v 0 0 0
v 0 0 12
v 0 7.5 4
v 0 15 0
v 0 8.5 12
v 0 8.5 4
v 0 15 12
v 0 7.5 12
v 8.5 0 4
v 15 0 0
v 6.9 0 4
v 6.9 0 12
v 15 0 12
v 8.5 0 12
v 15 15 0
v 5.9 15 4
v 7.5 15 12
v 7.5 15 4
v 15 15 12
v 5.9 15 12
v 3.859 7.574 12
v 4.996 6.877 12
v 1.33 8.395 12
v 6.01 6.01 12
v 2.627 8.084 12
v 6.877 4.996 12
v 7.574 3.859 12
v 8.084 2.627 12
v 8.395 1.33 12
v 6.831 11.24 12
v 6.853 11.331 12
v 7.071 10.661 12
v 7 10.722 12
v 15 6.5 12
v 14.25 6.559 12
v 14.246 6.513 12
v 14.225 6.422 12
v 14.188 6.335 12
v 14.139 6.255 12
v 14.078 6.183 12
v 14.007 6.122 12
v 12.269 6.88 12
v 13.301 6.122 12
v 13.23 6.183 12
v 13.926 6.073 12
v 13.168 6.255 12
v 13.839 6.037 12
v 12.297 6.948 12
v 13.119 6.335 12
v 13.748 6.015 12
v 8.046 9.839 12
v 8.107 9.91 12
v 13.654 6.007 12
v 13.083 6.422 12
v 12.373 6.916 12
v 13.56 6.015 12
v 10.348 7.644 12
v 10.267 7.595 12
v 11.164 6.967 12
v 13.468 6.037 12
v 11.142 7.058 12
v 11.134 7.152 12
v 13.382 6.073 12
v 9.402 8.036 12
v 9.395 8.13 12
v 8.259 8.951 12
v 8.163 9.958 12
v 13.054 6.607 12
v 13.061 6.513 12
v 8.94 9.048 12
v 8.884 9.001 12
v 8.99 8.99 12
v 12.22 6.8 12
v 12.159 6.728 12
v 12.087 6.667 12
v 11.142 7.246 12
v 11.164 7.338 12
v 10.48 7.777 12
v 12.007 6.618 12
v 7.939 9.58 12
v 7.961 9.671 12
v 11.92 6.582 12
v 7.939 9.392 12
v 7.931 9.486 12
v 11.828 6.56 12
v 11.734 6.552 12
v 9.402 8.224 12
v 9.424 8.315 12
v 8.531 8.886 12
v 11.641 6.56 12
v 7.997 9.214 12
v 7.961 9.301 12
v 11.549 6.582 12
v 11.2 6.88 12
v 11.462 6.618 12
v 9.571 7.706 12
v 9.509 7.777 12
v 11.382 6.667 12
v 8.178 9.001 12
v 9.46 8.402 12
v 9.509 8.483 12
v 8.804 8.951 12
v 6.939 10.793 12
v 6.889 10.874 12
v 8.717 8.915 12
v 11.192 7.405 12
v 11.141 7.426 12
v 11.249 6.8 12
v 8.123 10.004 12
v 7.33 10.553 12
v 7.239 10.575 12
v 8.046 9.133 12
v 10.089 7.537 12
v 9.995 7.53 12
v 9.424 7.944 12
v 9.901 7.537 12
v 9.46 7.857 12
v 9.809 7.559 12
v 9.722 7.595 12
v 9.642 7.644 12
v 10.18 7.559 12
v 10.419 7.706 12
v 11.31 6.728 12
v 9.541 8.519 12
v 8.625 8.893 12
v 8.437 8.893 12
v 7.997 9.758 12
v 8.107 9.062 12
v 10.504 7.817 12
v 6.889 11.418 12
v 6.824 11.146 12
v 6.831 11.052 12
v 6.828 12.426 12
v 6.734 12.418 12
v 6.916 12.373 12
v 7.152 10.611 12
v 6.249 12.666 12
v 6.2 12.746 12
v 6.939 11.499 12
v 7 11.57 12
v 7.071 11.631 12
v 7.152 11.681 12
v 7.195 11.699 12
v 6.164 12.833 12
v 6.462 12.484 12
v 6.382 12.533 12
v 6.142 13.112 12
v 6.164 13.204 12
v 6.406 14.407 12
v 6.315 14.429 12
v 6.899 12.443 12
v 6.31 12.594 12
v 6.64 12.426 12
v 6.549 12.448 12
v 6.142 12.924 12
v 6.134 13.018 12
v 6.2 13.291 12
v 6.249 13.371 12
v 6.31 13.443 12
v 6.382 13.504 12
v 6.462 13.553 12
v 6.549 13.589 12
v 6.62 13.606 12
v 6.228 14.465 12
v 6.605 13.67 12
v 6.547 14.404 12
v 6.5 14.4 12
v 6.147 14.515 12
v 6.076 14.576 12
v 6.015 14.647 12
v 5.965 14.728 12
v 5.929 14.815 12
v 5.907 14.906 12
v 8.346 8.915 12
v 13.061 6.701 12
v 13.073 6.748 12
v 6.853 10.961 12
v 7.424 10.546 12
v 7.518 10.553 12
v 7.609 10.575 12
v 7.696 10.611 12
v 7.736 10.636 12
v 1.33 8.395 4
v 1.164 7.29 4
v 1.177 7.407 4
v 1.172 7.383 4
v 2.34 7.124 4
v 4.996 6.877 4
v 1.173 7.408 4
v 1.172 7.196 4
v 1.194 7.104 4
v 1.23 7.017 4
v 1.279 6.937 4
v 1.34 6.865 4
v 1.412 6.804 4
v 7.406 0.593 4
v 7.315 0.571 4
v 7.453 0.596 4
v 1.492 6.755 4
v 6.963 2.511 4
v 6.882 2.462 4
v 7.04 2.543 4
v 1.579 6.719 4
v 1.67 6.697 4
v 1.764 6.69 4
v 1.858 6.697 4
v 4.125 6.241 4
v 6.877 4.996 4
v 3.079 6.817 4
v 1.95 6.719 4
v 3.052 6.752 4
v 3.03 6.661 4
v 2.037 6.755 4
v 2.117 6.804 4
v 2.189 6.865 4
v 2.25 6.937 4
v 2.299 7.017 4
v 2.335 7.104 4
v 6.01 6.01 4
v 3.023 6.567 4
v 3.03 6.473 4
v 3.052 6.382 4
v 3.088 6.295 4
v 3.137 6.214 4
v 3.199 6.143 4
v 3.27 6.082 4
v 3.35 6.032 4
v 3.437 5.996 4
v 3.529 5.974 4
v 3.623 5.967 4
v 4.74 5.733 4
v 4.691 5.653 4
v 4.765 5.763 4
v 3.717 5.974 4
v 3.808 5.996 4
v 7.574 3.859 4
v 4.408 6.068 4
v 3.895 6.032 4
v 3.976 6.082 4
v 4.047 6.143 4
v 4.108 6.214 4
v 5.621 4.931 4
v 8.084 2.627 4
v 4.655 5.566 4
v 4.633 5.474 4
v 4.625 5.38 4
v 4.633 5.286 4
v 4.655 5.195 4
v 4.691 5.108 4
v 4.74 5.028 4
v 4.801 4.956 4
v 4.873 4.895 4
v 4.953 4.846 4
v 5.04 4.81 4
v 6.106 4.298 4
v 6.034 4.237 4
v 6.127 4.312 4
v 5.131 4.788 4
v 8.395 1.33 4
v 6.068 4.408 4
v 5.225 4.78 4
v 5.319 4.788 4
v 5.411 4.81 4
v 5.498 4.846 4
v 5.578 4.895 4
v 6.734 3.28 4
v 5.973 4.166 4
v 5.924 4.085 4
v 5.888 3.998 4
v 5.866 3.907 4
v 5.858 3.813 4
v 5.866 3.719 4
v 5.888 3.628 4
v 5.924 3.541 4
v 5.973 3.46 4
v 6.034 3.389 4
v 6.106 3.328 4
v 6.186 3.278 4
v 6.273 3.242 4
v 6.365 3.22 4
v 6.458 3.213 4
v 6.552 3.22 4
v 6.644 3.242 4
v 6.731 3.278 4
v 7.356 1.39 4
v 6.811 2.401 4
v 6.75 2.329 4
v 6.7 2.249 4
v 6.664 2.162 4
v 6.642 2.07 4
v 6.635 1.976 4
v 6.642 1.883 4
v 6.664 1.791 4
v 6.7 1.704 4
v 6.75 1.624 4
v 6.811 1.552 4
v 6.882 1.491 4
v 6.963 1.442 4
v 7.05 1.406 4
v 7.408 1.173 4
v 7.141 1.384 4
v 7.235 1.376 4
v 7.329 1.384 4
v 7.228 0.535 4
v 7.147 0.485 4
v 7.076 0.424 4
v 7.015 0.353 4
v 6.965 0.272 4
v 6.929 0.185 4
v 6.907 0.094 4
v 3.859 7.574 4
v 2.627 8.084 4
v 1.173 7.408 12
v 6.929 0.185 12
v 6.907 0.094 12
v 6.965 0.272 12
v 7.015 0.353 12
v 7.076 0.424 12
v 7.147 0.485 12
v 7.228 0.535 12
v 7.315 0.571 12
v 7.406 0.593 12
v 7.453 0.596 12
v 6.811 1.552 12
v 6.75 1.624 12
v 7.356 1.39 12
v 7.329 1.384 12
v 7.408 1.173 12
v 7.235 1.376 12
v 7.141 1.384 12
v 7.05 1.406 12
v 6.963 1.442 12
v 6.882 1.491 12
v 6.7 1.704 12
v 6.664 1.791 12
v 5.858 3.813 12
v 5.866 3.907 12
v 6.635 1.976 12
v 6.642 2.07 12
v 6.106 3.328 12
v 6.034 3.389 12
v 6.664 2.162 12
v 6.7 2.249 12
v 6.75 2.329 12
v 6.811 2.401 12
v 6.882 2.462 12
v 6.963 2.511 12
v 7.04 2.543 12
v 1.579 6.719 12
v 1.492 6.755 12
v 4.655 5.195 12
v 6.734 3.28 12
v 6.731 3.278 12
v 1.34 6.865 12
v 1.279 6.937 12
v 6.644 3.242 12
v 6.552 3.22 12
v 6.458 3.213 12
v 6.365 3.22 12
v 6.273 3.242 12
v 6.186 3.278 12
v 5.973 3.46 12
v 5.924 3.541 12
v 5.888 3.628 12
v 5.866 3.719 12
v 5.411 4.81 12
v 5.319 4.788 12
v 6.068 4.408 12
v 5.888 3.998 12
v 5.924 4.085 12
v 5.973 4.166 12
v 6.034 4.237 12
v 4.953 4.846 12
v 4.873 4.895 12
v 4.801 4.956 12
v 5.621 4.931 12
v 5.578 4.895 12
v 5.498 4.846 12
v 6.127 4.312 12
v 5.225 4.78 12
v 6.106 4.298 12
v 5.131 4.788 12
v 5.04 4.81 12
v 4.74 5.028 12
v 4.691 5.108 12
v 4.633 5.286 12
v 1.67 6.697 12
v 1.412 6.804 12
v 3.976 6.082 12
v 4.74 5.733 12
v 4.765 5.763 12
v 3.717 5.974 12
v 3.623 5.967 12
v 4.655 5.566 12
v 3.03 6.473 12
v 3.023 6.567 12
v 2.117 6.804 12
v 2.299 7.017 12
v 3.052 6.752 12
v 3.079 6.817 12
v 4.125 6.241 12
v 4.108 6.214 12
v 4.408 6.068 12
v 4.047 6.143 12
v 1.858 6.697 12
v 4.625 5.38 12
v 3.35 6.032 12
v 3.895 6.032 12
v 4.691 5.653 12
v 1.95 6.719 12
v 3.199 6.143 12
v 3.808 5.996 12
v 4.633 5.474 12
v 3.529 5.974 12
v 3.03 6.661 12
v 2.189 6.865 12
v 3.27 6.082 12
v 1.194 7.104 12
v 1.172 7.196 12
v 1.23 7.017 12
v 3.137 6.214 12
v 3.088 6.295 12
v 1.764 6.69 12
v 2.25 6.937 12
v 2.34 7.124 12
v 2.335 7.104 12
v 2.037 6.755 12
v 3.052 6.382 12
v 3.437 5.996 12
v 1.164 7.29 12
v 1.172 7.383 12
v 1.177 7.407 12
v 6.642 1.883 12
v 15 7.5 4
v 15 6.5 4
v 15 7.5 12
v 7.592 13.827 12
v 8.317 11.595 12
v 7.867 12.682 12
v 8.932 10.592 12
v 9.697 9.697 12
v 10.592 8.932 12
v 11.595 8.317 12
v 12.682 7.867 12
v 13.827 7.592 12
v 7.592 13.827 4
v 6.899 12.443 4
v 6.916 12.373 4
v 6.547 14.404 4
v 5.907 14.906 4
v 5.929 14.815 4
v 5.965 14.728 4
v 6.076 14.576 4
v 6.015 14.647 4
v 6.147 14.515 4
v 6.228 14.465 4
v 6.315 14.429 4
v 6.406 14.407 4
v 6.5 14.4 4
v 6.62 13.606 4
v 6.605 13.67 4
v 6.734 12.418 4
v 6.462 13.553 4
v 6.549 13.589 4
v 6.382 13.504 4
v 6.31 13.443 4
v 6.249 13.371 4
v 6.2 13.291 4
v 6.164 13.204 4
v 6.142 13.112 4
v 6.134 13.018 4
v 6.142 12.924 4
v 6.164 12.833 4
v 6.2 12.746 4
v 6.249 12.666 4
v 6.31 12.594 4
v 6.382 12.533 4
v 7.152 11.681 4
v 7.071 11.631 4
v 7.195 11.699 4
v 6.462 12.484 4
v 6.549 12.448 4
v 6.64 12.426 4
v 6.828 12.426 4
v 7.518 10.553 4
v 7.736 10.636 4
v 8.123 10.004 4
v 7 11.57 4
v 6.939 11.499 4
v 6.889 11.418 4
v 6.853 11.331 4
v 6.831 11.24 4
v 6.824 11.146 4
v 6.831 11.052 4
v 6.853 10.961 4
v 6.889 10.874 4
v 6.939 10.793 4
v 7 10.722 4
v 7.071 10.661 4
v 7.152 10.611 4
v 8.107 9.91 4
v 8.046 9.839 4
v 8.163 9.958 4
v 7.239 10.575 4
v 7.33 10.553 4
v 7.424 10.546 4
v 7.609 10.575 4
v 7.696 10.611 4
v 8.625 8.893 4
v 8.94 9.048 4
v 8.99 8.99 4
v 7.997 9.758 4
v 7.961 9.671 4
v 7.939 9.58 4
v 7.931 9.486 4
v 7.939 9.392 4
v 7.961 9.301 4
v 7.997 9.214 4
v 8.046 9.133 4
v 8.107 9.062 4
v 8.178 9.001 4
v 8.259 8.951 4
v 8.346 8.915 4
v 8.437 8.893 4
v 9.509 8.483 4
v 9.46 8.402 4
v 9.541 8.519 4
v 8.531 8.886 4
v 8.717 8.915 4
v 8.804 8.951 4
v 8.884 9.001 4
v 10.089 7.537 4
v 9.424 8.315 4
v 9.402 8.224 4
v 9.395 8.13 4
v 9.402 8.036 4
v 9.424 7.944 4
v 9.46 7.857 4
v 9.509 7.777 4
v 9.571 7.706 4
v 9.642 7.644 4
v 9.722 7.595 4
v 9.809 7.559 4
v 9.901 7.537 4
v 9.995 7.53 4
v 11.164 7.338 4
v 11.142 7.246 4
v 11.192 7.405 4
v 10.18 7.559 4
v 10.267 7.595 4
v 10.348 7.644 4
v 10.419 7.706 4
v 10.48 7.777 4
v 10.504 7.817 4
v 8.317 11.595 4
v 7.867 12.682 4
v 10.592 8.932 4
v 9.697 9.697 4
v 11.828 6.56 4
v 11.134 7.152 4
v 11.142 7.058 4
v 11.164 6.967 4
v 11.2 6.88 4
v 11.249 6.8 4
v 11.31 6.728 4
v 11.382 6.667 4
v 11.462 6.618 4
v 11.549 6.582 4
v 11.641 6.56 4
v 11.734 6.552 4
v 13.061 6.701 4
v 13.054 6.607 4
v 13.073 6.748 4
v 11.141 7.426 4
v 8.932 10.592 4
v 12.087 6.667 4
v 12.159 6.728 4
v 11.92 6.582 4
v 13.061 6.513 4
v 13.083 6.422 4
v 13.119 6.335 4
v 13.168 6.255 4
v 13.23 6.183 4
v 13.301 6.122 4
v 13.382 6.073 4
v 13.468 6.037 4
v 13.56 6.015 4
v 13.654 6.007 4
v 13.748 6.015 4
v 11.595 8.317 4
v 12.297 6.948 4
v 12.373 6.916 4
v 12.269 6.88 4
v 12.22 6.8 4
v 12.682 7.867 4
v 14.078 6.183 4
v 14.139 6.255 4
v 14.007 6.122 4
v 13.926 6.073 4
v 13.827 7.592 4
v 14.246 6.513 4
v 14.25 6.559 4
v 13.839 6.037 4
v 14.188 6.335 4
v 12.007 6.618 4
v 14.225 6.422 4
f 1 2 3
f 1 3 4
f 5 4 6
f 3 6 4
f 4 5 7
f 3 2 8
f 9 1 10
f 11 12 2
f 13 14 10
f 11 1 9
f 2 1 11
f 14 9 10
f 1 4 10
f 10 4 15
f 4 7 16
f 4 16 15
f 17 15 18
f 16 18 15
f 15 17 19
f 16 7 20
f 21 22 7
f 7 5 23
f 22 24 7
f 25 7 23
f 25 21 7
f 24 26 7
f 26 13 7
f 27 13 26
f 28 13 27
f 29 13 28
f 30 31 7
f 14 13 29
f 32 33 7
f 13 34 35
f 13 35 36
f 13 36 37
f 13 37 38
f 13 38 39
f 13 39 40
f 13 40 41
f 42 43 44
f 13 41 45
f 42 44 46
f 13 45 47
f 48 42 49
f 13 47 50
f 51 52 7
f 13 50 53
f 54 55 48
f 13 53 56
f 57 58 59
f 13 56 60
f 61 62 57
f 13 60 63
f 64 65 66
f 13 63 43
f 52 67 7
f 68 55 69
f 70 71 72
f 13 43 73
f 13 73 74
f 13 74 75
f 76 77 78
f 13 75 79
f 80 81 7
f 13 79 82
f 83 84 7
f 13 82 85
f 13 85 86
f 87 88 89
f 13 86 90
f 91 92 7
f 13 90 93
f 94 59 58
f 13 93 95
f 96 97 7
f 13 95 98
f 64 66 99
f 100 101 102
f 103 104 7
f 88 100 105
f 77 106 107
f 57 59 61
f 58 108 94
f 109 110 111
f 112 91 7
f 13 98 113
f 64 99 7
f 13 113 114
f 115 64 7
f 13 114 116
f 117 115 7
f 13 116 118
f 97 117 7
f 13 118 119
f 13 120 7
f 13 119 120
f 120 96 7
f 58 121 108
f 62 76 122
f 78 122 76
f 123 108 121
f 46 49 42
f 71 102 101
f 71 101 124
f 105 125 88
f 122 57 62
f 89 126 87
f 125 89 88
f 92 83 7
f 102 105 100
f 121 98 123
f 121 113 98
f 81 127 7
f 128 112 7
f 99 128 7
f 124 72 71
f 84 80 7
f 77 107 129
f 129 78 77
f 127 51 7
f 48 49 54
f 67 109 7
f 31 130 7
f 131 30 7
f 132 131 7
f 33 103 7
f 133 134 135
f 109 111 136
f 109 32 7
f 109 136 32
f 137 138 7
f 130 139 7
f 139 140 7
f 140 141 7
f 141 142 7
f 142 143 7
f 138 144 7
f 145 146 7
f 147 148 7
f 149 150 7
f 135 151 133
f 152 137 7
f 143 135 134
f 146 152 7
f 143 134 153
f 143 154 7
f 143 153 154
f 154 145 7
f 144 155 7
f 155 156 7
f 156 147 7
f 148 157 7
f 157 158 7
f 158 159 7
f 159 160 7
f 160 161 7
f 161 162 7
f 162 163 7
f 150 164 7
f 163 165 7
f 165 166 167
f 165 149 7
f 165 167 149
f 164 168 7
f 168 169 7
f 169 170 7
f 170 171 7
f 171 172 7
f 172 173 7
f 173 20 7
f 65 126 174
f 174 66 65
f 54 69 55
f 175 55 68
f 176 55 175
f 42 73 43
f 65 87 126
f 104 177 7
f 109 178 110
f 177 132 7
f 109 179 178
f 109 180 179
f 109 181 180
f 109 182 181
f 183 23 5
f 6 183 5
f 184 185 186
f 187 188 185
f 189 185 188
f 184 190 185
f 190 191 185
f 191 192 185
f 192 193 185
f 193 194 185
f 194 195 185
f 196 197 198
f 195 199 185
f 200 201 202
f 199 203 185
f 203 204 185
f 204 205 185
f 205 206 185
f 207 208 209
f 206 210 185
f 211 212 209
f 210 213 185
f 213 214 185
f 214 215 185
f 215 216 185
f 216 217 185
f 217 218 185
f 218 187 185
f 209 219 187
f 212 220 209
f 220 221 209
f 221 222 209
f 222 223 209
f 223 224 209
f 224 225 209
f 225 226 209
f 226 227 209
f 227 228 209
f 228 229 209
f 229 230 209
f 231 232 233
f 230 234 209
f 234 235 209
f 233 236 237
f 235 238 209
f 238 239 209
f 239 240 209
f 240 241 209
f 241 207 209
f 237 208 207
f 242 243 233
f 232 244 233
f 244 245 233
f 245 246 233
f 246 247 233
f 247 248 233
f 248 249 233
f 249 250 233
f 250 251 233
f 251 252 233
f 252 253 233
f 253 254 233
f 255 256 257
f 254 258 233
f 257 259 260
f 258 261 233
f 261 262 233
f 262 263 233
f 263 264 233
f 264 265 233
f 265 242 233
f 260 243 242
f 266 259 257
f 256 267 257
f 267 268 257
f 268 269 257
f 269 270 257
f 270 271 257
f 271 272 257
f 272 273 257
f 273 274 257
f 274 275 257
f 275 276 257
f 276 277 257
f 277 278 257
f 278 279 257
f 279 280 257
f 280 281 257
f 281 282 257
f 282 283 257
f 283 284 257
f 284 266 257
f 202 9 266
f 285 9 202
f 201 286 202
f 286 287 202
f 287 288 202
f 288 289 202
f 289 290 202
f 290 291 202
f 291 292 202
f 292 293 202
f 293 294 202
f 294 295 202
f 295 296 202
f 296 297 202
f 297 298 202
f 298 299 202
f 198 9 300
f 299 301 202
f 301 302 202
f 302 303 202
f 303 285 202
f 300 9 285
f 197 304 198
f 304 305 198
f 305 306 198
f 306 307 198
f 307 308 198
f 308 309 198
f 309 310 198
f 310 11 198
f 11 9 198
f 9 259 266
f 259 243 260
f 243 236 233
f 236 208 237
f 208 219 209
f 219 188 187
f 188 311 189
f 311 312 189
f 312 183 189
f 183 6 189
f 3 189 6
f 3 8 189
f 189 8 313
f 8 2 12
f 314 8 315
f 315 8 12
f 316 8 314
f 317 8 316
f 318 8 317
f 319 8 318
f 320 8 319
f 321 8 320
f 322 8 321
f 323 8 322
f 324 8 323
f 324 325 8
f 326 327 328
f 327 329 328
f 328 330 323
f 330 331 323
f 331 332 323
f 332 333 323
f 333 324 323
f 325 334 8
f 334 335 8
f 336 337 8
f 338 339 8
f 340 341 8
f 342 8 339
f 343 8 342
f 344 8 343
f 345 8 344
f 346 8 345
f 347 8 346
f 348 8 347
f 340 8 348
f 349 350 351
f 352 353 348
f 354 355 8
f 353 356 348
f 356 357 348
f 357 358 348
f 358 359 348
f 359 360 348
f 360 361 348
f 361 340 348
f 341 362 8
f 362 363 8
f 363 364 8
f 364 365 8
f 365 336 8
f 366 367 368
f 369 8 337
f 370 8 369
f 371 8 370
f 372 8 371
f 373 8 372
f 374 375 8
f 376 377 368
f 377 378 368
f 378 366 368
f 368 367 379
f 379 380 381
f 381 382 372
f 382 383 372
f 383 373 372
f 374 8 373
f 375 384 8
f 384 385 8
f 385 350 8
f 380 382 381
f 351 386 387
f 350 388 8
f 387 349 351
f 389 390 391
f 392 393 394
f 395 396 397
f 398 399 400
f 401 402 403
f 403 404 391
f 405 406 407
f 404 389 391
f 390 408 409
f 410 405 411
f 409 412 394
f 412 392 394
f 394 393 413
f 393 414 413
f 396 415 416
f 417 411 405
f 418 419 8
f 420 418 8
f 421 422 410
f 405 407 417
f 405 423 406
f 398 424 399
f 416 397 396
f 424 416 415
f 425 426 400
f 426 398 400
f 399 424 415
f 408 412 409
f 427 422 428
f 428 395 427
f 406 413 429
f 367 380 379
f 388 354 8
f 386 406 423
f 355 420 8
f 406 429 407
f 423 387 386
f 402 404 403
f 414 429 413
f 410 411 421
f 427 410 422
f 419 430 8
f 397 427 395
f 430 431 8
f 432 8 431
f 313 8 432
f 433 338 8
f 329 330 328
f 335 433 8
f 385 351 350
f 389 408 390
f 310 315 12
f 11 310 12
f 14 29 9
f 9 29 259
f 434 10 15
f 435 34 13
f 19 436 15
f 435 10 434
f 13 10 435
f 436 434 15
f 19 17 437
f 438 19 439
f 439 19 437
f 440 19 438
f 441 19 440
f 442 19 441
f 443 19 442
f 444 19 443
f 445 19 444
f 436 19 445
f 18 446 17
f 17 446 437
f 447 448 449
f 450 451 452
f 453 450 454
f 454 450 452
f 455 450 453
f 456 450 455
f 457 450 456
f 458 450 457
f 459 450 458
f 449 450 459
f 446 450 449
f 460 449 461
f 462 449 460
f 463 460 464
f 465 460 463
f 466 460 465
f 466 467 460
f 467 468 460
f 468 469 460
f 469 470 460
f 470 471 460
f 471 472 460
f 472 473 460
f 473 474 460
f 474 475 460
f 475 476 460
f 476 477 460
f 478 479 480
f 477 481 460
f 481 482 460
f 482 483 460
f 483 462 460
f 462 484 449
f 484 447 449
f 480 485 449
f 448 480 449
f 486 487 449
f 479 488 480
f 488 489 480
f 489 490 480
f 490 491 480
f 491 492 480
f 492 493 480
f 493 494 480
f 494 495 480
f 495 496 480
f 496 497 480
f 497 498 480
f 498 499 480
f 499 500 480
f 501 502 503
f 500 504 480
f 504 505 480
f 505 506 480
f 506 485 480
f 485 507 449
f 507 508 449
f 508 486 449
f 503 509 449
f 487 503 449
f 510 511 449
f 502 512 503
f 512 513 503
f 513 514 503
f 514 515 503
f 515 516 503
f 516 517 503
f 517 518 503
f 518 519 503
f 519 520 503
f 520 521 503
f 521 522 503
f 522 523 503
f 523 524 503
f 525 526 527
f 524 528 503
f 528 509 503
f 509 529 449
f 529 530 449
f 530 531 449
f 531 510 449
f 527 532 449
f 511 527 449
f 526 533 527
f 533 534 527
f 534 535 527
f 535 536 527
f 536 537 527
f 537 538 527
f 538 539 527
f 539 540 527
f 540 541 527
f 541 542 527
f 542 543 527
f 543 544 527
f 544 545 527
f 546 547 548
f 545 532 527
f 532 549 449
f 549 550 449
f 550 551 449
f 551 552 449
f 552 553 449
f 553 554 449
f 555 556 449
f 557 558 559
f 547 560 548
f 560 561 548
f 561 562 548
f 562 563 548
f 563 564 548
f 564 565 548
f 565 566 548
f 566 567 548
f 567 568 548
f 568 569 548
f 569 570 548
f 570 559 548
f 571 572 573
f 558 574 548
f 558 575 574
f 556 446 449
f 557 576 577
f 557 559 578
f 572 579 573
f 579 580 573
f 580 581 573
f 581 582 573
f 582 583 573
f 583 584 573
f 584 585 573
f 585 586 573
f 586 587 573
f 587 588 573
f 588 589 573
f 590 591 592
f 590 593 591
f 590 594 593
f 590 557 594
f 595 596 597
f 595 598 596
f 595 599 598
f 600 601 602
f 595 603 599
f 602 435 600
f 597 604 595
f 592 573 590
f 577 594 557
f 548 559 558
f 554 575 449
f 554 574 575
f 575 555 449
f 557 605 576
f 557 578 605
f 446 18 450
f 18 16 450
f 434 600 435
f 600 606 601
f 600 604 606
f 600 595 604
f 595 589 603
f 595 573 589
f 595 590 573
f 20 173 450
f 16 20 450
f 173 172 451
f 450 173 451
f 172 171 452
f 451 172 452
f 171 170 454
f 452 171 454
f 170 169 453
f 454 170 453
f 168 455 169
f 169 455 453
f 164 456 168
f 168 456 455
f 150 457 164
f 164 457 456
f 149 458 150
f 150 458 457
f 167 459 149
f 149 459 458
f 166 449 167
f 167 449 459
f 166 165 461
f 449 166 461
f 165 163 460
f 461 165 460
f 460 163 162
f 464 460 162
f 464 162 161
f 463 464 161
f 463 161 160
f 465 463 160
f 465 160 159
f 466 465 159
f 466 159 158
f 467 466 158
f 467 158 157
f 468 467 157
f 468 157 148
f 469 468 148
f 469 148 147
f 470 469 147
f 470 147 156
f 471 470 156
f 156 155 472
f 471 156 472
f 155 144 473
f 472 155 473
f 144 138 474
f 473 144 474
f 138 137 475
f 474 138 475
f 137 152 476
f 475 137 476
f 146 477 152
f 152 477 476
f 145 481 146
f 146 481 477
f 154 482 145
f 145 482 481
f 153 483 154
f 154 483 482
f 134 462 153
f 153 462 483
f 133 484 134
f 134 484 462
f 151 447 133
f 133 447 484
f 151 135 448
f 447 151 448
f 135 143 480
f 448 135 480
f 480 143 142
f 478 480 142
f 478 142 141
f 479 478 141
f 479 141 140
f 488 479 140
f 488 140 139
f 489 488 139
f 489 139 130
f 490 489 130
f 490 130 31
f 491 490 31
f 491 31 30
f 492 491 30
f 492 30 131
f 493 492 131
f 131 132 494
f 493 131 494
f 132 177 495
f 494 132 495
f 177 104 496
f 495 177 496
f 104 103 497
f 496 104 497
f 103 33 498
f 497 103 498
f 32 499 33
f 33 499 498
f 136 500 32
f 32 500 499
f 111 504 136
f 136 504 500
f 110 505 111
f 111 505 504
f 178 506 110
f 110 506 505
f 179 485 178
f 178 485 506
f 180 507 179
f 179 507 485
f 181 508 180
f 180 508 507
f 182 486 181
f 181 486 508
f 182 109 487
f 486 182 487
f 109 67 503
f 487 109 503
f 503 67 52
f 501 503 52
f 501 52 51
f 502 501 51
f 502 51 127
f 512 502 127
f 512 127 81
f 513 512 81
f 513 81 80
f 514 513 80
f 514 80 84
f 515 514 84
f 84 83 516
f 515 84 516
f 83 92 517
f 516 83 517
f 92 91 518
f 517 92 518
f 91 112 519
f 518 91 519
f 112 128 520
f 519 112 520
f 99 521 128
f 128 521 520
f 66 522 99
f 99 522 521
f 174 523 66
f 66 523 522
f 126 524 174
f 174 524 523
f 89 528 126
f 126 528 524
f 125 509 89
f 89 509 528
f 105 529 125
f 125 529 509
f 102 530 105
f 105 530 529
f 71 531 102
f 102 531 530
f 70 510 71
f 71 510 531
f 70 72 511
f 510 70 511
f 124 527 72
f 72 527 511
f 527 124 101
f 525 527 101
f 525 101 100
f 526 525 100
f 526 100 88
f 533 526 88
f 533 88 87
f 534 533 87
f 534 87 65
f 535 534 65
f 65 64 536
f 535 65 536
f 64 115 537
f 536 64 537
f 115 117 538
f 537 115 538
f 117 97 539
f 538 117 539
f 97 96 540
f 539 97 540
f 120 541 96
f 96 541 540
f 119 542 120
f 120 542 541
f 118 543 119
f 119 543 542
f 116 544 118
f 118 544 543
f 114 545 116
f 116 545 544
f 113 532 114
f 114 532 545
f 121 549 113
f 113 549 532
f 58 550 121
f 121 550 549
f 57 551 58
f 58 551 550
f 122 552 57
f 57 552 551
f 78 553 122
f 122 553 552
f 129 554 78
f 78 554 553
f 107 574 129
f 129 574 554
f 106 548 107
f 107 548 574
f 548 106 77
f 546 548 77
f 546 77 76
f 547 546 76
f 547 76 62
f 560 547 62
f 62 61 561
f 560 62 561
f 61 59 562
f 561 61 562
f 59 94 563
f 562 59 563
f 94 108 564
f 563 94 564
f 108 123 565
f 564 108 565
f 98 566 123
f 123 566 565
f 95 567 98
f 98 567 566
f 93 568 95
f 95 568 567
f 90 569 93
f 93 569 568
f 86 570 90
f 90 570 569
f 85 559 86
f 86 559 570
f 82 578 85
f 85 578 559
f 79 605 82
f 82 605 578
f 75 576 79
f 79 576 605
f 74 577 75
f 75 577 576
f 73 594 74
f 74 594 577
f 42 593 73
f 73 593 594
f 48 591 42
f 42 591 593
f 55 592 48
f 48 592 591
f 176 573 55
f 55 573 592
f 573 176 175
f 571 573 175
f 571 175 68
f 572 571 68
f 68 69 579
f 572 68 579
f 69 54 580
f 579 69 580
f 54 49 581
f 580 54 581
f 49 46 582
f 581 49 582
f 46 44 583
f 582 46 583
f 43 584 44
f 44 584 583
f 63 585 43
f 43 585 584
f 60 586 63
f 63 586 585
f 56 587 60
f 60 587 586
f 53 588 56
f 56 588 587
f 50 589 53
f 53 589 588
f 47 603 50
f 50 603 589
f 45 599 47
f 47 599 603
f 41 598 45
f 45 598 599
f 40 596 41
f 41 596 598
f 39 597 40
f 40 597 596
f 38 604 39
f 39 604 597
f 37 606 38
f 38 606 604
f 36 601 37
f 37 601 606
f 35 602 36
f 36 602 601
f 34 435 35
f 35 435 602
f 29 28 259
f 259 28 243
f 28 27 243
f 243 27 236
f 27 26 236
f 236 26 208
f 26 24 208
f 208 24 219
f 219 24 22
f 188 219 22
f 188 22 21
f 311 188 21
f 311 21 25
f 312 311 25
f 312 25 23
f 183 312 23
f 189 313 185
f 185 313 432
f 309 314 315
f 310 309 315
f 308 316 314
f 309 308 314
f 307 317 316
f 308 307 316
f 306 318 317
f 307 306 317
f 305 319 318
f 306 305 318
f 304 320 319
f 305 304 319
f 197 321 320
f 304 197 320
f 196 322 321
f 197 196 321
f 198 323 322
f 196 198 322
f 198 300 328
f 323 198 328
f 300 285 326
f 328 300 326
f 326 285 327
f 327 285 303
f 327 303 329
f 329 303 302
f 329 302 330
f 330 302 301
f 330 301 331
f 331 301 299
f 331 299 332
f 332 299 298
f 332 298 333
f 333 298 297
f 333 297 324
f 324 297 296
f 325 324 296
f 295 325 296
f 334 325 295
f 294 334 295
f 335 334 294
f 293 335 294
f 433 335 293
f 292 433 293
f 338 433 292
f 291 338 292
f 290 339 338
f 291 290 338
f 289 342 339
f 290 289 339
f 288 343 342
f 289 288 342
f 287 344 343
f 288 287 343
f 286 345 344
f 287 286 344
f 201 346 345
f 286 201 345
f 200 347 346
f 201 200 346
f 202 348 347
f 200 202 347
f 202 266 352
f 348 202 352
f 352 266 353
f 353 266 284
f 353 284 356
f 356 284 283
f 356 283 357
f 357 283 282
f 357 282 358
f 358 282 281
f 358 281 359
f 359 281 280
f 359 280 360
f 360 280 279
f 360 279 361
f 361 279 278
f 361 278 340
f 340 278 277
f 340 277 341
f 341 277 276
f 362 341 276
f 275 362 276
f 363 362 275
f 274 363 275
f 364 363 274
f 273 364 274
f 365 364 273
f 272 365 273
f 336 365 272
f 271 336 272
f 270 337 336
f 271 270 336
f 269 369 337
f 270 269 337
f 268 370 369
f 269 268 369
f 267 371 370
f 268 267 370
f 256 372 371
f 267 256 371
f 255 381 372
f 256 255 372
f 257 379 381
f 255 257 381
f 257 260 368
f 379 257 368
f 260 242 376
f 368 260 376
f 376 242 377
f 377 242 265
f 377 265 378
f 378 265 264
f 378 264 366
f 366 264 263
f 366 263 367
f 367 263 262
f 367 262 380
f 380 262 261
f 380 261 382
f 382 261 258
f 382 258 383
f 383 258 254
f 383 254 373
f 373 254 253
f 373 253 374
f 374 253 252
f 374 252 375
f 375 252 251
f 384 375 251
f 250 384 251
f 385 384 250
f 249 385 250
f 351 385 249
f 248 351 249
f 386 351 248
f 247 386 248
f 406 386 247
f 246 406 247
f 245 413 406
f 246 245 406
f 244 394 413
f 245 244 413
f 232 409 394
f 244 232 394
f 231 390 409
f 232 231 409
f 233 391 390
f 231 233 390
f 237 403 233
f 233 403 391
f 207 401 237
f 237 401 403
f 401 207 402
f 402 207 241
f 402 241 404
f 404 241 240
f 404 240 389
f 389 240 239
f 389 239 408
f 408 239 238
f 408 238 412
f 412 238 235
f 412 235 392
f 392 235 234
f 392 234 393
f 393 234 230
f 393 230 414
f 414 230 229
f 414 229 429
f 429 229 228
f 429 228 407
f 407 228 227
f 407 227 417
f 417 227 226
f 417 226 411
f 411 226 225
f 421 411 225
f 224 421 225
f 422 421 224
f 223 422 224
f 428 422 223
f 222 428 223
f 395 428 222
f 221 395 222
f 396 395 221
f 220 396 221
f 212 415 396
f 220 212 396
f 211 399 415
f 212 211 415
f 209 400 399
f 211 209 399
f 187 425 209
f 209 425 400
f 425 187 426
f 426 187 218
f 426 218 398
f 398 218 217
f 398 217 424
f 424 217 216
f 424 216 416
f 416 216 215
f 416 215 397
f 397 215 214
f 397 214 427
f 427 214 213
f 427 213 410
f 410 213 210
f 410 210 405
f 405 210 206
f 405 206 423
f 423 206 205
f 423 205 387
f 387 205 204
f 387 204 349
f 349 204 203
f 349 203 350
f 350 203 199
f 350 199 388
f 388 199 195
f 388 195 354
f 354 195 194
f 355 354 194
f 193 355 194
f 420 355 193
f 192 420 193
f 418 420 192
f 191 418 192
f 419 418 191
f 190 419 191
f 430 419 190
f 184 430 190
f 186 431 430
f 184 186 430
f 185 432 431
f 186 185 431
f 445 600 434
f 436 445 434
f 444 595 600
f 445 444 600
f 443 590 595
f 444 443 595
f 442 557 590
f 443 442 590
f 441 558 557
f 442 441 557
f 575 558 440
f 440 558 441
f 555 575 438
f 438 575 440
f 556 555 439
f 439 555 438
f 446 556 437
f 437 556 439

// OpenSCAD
// file: configuration.scad
smidge              =  0.1;
mmPerInch			= 25.4;
m3Radius            = (3.0 + 0.2) / 2;
m3LooseRadius		= m3Radius + 0.2;
m3HeadHeight        = 3.0;
m3LooseHeadRadius   = (5.4 + 0.6) / 2;
m3NutRadius         = (6.25 + 0.75) / 2;
m3LooseNutRadius    = m3NutRadius + 0.2;
m3NutHeight			= 2.4;
m3LockNutRadius     = (6.25 + 0.75) / 2;
m3LockNutHeight     = 4.0;
ballJointSeparation = 48.0;
ballRadius			= (3/8 * mmPerInch)/2;
ballBaseRadius		= 10.0 / 2;
extrusionWidth		= 15.0;
glassRadius			= 125.0;
glassHeight			= 3.4;
nozzleWidth			= 0.5;
// main file
include <configuration.scad>;

belt_width = 6;
belt_thickness = 1.0;
belt_pitch = 2.0;
tooth_radius = 0.6;
path_height = belt_width + 2;

clamp_width = 15;
clamp_length = 15;
clamp_base = 4;
clamp_thickness = path_height+clamp_base;

$fn = 40;

clamp_inside_radius = clamp_width/2;
clamp_outside_radius = clamp_inside_radius+belt_thickness;
dTheta_inside = belt_pitch/clamp_inside_radius;
dTheta_outside = belt_pitch/clamp_outside_radius;
pi = 3.14159;

difference() {
  cube([clamp_width, clamp_length, clamp_thickness]);

  // Belt paths
  difference() {
    translate([0,0,clamp_base]) cylinder(h=path_height,r=clamp_outside_radius);
    translate([0,0,clamp_base]) cylinder(h=path_height,r=clamp_inside_radius);
  }
  difference() {
    translate([clamp_width,clamp_length,clamp_base]) cylinder(h=path_height,r=clamp_outside_radius);
    translate([clamp_width,clamp_length,clamp_base]) cylinder(h=path_height,r=clamp_inside_radius);
  }

  // Belt teeth
  for (theta = [0:dTheta_inside:pi/2]) {
    translate([clamp_inside_radius*cos(theta*180/pi),clamp_inside_radius*sin(theta*180/pi),clamp_base]) cylinder(r=tooth_radius, h=path_height);
  }
  for (theta = [0:dTheta_outside:pi/2]) {
    translate([clamp_width-clamp_outside_radius*cos(theta*180/pi),clamp_length-clamp_outside_radius*sin(theta*180/pi),clamp_base]) cylinder(r=tooth_radius, h=path_height);
  }


};
